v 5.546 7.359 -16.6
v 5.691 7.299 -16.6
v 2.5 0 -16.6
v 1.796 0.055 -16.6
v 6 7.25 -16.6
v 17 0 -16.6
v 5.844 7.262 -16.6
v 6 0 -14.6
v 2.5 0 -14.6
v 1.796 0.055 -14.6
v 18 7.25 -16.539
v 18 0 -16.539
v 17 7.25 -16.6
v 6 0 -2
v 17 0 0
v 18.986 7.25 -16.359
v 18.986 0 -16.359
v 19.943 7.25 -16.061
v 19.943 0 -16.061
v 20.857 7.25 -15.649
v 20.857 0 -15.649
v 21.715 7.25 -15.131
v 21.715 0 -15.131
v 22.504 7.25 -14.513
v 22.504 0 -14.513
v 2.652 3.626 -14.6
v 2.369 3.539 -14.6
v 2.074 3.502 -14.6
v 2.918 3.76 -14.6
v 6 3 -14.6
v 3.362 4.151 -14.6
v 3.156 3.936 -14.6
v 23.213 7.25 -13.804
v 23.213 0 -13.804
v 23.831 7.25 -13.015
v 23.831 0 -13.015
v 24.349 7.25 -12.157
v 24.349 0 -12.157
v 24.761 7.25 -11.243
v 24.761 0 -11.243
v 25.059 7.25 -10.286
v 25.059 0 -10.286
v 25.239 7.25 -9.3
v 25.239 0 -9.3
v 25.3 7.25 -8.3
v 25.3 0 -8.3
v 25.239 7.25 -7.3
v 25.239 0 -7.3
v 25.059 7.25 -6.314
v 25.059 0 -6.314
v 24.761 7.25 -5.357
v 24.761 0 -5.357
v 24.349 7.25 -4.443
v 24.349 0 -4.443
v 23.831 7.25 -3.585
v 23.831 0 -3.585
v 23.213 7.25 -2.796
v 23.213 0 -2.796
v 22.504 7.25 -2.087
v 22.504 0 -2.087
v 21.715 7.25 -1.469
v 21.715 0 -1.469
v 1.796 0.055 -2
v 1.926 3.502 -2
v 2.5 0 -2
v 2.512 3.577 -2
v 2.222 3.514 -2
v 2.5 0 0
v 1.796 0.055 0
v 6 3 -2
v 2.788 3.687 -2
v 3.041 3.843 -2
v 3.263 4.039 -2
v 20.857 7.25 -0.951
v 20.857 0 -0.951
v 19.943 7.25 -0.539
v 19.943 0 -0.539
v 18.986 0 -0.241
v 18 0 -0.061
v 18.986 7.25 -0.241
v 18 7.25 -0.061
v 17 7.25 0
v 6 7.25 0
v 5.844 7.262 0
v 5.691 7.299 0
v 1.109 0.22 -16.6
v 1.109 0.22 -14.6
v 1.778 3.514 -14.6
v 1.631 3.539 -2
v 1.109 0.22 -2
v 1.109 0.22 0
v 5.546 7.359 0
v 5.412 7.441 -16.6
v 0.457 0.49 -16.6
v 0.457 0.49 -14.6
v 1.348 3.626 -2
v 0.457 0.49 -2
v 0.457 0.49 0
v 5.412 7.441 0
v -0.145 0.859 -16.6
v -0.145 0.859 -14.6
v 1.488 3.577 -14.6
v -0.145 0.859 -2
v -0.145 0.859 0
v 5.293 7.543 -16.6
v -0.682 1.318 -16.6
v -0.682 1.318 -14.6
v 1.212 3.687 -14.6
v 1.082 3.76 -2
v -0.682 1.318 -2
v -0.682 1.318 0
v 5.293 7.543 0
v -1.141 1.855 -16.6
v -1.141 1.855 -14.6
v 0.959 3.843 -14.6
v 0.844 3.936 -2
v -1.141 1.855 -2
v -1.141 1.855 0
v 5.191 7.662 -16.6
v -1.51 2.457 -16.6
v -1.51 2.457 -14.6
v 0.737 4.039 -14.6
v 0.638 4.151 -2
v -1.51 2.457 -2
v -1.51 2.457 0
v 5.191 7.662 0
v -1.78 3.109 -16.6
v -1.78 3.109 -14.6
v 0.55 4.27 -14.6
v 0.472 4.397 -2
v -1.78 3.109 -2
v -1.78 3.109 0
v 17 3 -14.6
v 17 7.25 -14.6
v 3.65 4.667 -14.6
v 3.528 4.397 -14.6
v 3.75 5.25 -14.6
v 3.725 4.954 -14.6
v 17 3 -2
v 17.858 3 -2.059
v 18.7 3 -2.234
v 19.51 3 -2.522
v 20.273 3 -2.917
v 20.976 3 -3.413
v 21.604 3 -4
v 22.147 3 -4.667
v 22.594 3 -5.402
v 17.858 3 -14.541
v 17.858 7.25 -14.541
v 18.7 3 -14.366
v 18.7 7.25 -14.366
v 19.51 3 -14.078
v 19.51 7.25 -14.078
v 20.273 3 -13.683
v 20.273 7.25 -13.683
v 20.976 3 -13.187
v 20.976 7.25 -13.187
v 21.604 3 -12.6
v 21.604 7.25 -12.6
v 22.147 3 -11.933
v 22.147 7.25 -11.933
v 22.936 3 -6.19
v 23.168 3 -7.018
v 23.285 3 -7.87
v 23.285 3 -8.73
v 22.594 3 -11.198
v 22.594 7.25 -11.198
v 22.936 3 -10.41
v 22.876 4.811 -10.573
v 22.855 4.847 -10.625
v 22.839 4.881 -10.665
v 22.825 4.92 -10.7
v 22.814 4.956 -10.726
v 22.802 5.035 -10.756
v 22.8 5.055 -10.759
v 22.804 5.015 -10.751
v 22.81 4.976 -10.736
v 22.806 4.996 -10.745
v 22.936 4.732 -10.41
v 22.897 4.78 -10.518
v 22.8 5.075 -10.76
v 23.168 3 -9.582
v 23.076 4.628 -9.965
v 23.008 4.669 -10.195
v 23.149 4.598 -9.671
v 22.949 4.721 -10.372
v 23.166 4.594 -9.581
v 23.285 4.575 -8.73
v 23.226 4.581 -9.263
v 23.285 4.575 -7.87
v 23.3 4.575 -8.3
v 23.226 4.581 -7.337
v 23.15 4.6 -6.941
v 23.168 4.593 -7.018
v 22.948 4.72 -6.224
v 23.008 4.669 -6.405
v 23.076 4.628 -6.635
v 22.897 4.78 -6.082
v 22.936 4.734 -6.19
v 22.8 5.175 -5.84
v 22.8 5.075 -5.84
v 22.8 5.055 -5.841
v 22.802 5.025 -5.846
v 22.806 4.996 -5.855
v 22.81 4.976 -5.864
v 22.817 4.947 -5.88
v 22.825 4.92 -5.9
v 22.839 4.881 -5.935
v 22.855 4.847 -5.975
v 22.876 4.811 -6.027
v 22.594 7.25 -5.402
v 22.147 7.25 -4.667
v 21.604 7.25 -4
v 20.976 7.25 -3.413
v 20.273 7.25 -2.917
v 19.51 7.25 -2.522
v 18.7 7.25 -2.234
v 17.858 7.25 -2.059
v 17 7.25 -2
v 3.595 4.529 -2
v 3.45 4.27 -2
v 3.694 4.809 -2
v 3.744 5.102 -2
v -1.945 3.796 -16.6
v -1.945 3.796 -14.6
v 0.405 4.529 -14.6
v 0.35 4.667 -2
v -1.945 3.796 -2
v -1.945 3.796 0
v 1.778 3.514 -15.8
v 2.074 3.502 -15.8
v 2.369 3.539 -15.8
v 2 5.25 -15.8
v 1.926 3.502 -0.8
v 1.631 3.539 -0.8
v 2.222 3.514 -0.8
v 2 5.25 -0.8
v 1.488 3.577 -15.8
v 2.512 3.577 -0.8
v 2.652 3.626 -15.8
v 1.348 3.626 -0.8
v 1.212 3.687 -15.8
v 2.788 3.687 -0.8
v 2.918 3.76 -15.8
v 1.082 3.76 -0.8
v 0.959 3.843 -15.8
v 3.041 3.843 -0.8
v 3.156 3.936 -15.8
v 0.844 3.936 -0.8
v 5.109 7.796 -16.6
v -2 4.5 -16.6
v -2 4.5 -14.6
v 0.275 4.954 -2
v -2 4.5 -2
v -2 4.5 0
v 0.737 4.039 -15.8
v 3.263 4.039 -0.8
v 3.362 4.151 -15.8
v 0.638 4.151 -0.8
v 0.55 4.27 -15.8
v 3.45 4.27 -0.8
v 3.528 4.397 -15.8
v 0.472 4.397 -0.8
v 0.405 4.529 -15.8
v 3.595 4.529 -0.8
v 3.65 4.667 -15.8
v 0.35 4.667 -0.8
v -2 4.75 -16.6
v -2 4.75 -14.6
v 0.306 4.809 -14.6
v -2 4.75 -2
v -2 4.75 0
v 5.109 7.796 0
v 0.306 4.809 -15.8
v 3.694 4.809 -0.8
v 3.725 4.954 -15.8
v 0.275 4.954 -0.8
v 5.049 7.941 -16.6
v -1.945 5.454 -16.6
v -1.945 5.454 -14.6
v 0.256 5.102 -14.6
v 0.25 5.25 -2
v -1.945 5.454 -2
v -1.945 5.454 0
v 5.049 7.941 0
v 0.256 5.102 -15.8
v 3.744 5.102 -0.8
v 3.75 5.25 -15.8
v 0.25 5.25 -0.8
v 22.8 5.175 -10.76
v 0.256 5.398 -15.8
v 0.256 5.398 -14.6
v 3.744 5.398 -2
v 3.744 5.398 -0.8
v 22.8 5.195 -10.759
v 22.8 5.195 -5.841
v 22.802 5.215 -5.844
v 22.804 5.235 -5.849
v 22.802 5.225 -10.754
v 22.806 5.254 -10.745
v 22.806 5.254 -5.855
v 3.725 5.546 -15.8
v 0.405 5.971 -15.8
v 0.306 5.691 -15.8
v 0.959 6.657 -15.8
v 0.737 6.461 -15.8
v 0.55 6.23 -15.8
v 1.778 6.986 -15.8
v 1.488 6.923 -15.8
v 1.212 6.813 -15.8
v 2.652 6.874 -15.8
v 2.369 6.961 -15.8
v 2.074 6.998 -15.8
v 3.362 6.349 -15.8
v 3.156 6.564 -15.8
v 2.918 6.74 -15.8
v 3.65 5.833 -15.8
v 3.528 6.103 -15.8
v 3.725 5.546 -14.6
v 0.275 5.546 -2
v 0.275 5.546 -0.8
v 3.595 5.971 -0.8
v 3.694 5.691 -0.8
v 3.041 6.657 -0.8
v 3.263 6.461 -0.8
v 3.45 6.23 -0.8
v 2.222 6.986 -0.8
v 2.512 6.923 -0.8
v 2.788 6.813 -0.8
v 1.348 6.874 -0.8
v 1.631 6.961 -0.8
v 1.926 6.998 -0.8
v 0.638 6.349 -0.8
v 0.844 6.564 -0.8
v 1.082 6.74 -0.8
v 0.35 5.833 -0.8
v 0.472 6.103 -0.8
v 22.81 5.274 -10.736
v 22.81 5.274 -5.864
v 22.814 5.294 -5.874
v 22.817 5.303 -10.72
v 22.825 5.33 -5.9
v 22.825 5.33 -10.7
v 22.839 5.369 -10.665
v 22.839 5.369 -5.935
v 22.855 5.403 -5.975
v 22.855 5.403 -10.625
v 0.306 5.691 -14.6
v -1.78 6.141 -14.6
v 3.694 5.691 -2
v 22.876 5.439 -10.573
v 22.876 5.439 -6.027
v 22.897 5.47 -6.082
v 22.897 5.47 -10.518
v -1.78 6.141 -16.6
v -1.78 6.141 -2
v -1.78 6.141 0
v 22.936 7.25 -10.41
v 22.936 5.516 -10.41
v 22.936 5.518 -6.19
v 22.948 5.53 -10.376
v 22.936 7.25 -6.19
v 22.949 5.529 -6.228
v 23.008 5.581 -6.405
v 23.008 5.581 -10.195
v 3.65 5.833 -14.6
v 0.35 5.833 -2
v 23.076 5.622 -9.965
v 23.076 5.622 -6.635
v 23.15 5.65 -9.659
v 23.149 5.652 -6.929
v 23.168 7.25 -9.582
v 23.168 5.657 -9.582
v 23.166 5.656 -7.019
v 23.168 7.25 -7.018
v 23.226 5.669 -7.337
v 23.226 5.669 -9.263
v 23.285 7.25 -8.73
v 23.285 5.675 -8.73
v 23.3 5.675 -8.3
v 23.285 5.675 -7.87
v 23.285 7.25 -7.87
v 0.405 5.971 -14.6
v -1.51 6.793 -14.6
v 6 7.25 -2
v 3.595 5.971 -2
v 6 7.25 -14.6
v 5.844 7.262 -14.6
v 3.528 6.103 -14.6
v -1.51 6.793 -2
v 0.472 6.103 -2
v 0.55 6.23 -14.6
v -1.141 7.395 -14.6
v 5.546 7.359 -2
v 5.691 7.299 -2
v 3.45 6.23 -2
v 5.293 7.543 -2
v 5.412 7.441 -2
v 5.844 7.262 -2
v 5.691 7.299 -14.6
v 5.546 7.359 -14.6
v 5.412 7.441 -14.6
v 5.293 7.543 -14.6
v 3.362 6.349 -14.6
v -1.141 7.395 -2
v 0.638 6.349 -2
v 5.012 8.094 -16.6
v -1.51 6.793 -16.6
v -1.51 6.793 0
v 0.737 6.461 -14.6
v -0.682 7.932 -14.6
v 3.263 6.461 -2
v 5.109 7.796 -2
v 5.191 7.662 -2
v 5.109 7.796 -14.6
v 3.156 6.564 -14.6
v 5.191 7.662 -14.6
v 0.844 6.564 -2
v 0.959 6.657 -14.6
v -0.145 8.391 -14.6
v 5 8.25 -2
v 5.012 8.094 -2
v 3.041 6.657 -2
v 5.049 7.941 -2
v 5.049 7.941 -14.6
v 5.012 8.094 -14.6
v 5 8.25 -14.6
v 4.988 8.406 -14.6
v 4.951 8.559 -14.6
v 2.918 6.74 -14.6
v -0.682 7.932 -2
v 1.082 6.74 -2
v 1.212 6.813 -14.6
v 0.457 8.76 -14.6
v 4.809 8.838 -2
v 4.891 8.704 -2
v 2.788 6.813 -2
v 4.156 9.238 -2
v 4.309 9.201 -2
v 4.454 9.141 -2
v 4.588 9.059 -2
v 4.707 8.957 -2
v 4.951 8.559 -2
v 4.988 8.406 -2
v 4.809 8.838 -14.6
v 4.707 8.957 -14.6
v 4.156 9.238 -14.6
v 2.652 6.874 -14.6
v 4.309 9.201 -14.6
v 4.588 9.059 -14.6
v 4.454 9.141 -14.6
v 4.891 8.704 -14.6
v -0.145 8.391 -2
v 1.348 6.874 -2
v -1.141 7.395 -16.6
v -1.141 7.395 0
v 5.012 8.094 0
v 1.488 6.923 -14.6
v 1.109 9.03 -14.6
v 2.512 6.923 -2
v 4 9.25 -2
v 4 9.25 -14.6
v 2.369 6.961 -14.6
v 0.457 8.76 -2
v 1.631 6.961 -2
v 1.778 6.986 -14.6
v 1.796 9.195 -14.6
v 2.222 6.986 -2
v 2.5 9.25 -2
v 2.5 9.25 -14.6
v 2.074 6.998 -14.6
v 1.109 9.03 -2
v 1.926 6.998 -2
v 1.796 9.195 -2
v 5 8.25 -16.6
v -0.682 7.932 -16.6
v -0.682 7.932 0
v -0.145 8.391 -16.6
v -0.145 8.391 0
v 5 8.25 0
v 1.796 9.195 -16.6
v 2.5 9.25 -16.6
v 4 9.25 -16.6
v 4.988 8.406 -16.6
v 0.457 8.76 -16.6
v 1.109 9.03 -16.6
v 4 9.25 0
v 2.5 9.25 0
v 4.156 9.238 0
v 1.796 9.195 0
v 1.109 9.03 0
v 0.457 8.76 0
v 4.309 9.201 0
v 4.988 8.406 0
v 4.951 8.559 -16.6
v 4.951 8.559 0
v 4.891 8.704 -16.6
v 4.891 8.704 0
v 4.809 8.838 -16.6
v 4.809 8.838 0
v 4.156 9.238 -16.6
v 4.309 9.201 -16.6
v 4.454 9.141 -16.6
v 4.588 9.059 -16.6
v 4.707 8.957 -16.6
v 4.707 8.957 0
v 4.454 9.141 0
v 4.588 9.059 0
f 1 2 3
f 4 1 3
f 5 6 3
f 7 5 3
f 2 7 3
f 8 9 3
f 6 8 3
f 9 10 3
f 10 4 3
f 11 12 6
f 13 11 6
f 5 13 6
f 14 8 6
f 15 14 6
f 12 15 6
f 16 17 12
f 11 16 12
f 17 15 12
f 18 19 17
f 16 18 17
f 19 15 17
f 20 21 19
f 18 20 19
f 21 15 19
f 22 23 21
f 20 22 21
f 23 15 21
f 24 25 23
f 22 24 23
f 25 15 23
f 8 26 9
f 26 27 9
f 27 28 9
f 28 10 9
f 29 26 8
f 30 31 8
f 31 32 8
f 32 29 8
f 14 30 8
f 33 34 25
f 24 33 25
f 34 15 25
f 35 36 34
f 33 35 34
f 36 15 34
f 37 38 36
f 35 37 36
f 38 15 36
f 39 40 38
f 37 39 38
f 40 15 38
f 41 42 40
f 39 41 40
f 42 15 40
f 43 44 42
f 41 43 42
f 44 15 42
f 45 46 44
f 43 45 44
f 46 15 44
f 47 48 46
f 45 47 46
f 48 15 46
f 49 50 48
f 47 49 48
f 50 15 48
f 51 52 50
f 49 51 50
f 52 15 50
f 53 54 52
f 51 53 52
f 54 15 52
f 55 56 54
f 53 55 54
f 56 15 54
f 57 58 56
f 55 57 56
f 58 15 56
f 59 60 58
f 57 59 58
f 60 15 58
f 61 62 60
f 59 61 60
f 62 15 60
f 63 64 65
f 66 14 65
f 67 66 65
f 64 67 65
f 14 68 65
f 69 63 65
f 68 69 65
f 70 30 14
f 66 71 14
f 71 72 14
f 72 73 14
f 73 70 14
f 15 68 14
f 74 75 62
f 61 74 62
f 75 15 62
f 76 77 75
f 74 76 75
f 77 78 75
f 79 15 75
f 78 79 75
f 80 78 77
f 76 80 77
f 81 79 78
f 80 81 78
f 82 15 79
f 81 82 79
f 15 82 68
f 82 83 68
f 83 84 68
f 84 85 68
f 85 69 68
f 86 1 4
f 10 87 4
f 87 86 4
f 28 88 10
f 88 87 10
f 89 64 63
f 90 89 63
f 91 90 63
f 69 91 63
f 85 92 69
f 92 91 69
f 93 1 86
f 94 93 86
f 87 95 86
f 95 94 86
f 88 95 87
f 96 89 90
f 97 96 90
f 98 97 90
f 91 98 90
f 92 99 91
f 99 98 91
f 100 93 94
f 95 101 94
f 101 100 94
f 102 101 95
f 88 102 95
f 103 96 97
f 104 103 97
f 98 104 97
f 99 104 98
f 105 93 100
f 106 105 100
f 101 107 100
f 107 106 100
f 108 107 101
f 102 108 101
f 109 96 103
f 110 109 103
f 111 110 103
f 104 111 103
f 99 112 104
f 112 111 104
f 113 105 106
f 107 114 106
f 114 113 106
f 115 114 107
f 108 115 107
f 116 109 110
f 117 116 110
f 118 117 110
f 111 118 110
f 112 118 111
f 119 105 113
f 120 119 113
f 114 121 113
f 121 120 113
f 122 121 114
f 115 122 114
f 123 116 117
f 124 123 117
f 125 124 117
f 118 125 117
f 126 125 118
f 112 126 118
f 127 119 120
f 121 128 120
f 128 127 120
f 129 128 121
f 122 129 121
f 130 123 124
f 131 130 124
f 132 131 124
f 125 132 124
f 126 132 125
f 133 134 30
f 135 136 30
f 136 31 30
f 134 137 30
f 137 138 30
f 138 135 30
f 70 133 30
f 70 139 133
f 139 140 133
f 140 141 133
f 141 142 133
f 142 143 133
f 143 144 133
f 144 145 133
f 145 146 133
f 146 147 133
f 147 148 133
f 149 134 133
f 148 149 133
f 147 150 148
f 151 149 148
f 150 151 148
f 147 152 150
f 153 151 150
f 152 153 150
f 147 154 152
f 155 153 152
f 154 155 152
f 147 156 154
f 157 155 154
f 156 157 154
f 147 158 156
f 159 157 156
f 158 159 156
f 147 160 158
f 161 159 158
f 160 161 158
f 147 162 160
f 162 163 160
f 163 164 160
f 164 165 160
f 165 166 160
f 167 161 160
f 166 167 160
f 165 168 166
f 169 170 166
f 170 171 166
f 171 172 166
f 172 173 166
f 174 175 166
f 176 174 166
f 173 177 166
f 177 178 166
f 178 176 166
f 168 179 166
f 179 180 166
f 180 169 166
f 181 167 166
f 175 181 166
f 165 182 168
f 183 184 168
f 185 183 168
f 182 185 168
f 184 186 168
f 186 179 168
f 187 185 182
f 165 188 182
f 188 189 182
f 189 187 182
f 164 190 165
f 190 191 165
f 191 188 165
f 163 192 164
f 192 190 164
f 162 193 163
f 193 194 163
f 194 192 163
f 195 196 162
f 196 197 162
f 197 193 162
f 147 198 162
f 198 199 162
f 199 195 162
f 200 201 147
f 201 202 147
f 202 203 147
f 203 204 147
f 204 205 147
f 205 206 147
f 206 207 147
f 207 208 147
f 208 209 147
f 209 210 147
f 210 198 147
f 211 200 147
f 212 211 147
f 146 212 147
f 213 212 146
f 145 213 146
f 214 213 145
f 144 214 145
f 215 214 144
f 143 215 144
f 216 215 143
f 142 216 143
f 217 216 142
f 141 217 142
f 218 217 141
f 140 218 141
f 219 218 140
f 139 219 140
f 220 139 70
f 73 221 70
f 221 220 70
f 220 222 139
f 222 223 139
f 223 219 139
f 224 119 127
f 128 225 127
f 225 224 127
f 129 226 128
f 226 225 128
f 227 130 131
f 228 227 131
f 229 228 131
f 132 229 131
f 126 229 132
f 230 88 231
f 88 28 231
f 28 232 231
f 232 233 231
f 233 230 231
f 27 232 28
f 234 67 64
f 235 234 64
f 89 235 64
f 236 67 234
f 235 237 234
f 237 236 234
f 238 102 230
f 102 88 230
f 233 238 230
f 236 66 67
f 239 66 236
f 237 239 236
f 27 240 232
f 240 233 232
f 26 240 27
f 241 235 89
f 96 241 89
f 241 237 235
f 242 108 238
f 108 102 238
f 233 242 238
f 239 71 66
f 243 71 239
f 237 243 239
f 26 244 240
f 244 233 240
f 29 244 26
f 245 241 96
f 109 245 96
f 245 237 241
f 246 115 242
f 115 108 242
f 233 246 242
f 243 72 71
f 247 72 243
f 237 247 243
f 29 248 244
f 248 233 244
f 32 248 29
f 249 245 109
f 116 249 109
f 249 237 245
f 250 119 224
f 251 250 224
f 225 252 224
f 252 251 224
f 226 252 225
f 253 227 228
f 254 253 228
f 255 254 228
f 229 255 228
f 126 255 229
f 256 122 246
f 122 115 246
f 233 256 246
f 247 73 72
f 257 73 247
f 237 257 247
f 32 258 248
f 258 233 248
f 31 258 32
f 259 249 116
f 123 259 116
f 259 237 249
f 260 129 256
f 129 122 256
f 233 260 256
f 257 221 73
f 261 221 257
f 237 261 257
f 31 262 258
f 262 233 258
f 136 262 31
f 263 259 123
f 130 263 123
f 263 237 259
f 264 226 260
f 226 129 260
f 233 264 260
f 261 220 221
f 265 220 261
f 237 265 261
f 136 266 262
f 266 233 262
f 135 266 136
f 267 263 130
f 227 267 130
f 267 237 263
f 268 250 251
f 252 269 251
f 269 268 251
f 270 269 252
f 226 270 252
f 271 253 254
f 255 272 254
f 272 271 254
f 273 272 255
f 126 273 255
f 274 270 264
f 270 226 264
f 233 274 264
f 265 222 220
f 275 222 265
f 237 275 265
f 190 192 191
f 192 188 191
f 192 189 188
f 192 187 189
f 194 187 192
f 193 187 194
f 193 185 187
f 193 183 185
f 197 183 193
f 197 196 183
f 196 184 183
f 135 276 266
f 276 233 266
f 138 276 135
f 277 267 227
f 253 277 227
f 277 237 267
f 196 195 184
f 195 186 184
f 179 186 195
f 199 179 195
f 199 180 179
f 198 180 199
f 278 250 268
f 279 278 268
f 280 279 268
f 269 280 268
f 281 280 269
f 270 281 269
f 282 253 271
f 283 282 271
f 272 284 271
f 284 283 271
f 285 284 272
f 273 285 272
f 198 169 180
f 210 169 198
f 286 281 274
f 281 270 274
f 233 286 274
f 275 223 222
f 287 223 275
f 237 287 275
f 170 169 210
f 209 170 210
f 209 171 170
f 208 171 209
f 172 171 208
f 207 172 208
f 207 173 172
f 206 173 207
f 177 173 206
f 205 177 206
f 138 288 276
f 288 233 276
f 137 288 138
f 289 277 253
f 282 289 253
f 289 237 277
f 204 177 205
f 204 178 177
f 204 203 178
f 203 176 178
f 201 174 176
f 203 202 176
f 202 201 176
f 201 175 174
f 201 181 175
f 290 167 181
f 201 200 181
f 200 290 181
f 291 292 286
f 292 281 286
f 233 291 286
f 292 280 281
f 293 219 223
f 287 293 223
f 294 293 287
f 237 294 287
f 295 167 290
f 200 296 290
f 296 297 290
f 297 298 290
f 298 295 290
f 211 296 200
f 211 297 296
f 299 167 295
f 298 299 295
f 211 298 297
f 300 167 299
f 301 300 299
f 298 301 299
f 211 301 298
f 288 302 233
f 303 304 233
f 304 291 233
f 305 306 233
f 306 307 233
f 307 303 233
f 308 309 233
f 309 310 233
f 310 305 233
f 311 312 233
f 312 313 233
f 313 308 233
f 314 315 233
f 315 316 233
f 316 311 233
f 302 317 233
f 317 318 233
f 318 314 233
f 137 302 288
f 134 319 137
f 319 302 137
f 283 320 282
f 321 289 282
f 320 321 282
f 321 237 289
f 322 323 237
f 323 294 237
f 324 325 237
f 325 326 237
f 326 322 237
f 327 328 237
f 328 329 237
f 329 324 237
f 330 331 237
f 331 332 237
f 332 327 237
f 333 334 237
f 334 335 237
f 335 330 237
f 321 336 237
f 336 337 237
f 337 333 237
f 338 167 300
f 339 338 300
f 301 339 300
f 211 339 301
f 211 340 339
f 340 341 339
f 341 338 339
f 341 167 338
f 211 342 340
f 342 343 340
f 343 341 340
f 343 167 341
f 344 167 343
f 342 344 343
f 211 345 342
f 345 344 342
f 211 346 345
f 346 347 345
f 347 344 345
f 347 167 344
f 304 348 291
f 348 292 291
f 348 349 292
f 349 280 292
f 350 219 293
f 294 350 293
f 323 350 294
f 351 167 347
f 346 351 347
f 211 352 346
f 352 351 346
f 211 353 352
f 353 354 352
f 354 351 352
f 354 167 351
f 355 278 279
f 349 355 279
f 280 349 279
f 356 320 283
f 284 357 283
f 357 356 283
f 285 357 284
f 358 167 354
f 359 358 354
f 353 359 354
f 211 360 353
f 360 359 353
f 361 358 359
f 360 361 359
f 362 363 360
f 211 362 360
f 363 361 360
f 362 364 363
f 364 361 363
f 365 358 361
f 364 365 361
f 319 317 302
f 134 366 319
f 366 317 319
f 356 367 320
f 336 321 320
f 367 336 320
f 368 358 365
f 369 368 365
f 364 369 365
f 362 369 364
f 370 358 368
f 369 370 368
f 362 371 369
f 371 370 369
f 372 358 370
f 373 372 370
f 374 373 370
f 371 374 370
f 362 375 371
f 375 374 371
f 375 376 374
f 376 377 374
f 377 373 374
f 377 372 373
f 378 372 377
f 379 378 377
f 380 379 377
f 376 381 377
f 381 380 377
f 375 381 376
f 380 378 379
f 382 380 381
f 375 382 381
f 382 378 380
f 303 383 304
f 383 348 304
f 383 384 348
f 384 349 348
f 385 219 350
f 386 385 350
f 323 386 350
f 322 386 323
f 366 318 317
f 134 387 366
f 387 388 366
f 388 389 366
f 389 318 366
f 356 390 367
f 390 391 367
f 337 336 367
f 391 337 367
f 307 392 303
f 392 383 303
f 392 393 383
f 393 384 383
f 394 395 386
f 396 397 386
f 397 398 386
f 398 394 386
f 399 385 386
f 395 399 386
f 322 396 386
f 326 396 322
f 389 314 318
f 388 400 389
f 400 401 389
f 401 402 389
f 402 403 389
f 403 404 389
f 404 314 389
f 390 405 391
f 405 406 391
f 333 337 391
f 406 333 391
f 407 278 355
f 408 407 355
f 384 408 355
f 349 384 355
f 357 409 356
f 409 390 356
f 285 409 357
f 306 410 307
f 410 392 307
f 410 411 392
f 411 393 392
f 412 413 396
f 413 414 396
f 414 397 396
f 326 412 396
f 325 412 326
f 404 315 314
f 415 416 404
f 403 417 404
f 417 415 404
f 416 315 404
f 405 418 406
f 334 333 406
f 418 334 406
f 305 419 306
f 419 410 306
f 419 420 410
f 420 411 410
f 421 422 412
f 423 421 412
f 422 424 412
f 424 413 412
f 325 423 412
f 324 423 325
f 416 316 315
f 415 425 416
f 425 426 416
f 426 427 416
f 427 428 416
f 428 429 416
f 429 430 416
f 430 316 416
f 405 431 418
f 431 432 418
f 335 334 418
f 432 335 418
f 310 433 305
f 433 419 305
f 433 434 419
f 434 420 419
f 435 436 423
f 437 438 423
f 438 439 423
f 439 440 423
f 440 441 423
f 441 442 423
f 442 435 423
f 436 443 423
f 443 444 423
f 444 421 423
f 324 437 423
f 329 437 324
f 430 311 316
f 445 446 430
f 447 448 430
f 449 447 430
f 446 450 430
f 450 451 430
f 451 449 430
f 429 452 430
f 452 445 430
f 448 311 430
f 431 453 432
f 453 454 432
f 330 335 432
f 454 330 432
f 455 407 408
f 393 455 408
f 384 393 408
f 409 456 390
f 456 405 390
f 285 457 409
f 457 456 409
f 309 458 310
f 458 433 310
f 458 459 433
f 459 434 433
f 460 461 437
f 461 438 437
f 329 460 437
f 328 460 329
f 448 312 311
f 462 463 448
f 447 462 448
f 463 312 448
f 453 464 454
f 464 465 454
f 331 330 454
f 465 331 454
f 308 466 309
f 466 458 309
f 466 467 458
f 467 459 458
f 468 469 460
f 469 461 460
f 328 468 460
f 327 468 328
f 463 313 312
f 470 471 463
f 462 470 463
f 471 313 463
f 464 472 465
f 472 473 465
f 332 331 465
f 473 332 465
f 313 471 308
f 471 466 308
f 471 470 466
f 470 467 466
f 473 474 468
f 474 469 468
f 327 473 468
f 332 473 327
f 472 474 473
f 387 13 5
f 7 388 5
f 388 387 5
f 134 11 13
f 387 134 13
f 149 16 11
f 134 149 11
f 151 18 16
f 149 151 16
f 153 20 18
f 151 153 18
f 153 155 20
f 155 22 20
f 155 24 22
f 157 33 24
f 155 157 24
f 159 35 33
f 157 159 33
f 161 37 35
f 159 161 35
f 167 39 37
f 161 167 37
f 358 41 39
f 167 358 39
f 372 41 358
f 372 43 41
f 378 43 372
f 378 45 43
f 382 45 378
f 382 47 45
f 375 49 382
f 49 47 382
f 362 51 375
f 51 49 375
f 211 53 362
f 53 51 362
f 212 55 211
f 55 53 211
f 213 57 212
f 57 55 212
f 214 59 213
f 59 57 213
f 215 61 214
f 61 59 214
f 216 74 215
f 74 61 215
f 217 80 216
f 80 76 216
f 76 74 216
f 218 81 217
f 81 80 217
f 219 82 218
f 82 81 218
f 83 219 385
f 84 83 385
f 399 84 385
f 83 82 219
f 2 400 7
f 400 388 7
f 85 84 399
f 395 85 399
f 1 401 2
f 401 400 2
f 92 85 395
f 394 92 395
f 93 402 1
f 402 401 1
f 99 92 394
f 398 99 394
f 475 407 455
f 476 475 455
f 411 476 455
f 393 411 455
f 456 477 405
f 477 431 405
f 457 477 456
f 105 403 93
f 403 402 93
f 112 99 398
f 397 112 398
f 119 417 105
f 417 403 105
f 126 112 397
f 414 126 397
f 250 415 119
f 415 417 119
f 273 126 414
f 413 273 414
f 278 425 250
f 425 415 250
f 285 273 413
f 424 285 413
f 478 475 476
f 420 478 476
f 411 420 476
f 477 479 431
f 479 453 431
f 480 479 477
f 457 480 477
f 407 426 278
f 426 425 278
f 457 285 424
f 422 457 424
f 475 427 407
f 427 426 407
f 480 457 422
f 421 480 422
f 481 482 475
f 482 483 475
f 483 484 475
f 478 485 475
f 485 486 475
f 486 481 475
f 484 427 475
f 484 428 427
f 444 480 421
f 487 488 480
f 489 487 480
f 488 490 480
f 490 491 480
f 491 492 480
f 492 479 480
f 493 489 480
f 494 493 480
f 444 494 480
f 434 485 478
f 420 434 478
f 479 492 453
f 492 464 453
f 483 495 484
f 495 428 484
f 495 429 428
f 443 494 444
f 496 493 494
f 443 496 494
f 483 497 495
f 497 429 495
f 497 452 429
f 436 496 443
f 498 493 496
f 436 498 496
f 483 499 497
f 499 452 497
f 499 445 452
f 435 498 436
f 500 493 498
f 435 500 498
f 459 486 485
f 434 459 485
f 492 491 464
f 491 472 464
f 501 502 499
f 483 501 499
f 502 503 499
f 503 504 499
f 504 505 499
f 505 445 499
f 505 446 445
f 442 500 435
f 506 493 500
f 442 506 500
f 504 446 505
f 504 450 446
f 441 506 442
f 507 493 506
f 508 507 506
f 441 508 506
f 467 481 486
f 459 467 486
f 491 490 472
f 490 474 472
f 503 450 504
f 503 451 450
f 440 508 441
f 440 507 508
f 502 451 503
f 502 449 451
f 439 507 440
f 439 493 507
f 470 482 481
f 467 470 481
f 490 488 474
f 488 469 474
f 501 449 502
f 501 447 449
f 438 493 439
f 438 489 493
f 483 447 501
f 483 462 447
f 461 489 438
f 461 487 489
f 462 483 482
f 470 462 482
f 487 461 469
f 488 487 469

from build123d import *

# Parameters (mm, degrees)
BOSS_EXTRUDE1_DEPTH = 3
BOSS_EXTRUDE2_DEPTH = 4.25
CUT_EXTRUDE1_DEPTH  = 1.2
CUT_EXTRUDE2_START  = -1.2
CUT_EXTRUDE2_DEPTH  = 1.2
BOSS_EXTRUDE3_DEPTH = 2
BOSS_EXTRUDE4_DEPTH = 2
FILLET2_R           = 4.5
FILLET3_START       = -18
FILLET3_DEPTH       = 19
FILLET3_START_2     = -16.6
FILLET3_2_DEPTH     = 2
FILLET3_START_3     = -2
FILLET3_3_DEPTH     = 2
SKETCH7_W           = 5
SKETCH7_H           = 1.1
BOSS_EXTRUDE5_DEPTH = 0.7
FILLET4_R           = 0.5


with BuildPart() as part:
    # Sketch1 → Boss-Extrude1 (new body)
    with BuildSketch(Plane(origin=(0, 0, 0), x_dir=(1, 0, 0), z_dir=(0, 1, 0))):
        with BuildLine():
            Line((0, 0), (17, 0))
            ThreePointArc((17, 0), (25.3, 8.3), (17, 16.6))
            Line((17, 16.6), (0, 16.6))
            Line((0, 16.6), (0, 14.6))
            Line((0, 14.6), (6, 14.6))
            Line((6, 14.6), (6, 2))
            Line((6, 2), (0, 2))
            Line((0, 2), (0, 0))
        make_face()
    extrude(amount=BOSS_EXTRUDE1_DEPTH)

    # Sketch2 → Boss-Extrude2 (add)
    with BuildSketch(Plane(origin=(0, 3, 0), x_dir=(1, 0, 0), z_dir=(0, 1, 0))):
        with BuildLine():
            Line((6, 2), (0, 2))
            Line((0, 2), (0, 0))
            Line((0, 0), (17, 0))
            ThreePointArc((17, 0), (25.3, 8.3), (17, 16.6))
            Line((17, 16.6), (0, 16.6))
            Line((0, 16.6), (0, 14.6))
            Line((0, 14.6), (6, 14.6))
            Line((6, 14.6), (17, 14.6))
            ThreePointArc((17, 14.6), (23.3, 8.3), (17, 2))
            Line((17, 2), (6, 2))
        make_face()
    extrude(amount=BOSS_EXTRUDE2_DEPTH)

    # Sketch3 → Cut-Extrude1 (cut)
    with BuildSketch(Plane.XY.offset(-14.6)):
        with BuildLine():
            ThreePointArc((0.762563133, 6.487436867), (0.762563133, 4.012563133), (3.237436867, 4.012563133))
            Line((3.237436867, 4.012563133), (0.762563133, 6.487436867))
        make_face()
        with BuildLine():
            Line((0.762563133, 6.487436867), (3.237436867, 4.012563133))
            ThreePointArc((3.237436867, 4.012563133), (3.616789182, 4.580303993), (3.75, 5.25))
            ThreePointArc((3.75, 5.25), (2.669696007, 6.866789182), (0.762563133, 6.487436867))
        make_face()
    extrude(amount=-CUT_EXTRUDE1_DEPTH, mode=Mode.SUBTRACT)

    # Sketch4 → Cut-Extrude2 (cut)
    with BuildSketch(Plane(origin=(0, 0, -2), x_dir=(-1, 0, 0), z_dir=(0, 0, -1)).offset(CUT_EXTRUDE2_START)):
        with BuildLine():
            ThreePointArc((-0.25, 5.25), (-0.383210818, 5.919696007), (-0.762563133, 6.487436867))
            Line((-0.762563133, 6.487436867), (-3.237436867, 4.012563133))
            ThreePointArc((-3.237436867, 4.012563133), (-1.330303993, 3.633210818), (-0.25, 5.25))
        make_face()
        with BuildLine():
            Line((-3.237436867, 4.012563133), (-0.762563133, 6.487436867))
            ThreePointArc((-0.762563133, 6.487436867), (-3.237436867, 6.487436867), (-3.237436867, 4.012563133))
        make_face()
    extrude(amount=CUT_EXTRUDE2_DEPTH, mode=Mode.SUBTRACT)

    # Sketch5 → Boss-Extrude3 (add)
    with BuildSketch(Plane.XY):
        Polygon((5, 7.25), (5, 9.25), (-2, 9.25), (-2, 0), (0, 0), (0, 7.25), align=None)
    extrude(amount=-BOSS_EXTRUDE3_DEPTH)

    # Sketch6 → Boss-Extrude4 (add)
    with BuildSketch(Plane(origin=(0, 0, -16.6), x_dir=(-1, 0, 0), z_dir=(0, 0, -1))):
        Polygon((-5, 7.25), (-5, 9.25), (2, 9.25), (2, 0), (0, 0), (0, 7.25), align=None)
    extrude(amount=-BOSS_EXTRUDE4_DEPTH)

    # Fillet2
    fillet2_edges = [part.edges().sort_by_distance(p)[0] for p in [
        (-2, 0, -1),
        (-2, 9.25, -1),
        (-2, 9.25, -15.6),
        (-2, 0, -15.6),
    ]]
    fillet(fillet2_edges, radius=FILLET2_R)

    # Fillet3: read off the stored shape, not the designer's step
    # Fillet3 outline → Fillet3 (cut)
    with BuildSketch(Plane.XY.offset(FILLET3_START)):
        with BuildLine():
            Line((5, 9.25), (4, 9.25))
            ThreePointArc((4, 9.25), (4.707106781, 8.957106781), (5, 8.25))
            Line((5, 8.25), (5, 9.25))
        make_face()
    extrude(amount=FILLET3_DEPTH, mode=Mode.SUBTRACT)

    # Fillet3 2 outline → Fillet3 2 (add)
    with BuildSketch(Plane.XY.offset(FILLET3_START_2)):
        with BuildLine():
            ThreePointArc((6, 7.25), (5.292893219, 7.542893219), (5, 8.25))
            Line((5, 8.25), (5, 7.25))
            Line((5, 7.25), (6, 7.25))
        make_face()
    extrude(amount=FILLET3_2_DEPTH)

    # Fillet3 3 outline → Fillet3 3 (add)
    with BuildSketch(Plane.XY.offset(FILLET3_START_3)):
        with BuildLine():
            ThreePointArc((6, 7.25), (5.292893219, 7.542893219), (5, 8.25))
            Line((5, 8.25), (5, 7.25))
            Line((5, 7.25), (6, 7.25))
        make_face()
    extrude(amount=FILLET3_3_DEPTH)

    # Sketch7 → Boss-Extrude5 (add)
    with BuildSketch(Plane(origin=(23.5, 0, 0), x_dir=(0, 0, -1), z_dir=(1, 0, 0))):
        with Locations((8.3, 5.125)):
            Rectangle(SKETCH7_W, SKETCH7_H)
    extrude(amount=-BOSS_EXTRUDE5_DEPTH)

    # Fillet4
    fillet4_edges = [part.edges().sort_by_distance(p)[0] for p in [
        (22.8, 4.575, -8.3),
        (22.8, 5.675, -8.3),
    ]]
    fillet(fillet4_edges, radius=FILLET4_R - 0.0001)  # a hair under: the kernel refuses the full size


solid = part.part
